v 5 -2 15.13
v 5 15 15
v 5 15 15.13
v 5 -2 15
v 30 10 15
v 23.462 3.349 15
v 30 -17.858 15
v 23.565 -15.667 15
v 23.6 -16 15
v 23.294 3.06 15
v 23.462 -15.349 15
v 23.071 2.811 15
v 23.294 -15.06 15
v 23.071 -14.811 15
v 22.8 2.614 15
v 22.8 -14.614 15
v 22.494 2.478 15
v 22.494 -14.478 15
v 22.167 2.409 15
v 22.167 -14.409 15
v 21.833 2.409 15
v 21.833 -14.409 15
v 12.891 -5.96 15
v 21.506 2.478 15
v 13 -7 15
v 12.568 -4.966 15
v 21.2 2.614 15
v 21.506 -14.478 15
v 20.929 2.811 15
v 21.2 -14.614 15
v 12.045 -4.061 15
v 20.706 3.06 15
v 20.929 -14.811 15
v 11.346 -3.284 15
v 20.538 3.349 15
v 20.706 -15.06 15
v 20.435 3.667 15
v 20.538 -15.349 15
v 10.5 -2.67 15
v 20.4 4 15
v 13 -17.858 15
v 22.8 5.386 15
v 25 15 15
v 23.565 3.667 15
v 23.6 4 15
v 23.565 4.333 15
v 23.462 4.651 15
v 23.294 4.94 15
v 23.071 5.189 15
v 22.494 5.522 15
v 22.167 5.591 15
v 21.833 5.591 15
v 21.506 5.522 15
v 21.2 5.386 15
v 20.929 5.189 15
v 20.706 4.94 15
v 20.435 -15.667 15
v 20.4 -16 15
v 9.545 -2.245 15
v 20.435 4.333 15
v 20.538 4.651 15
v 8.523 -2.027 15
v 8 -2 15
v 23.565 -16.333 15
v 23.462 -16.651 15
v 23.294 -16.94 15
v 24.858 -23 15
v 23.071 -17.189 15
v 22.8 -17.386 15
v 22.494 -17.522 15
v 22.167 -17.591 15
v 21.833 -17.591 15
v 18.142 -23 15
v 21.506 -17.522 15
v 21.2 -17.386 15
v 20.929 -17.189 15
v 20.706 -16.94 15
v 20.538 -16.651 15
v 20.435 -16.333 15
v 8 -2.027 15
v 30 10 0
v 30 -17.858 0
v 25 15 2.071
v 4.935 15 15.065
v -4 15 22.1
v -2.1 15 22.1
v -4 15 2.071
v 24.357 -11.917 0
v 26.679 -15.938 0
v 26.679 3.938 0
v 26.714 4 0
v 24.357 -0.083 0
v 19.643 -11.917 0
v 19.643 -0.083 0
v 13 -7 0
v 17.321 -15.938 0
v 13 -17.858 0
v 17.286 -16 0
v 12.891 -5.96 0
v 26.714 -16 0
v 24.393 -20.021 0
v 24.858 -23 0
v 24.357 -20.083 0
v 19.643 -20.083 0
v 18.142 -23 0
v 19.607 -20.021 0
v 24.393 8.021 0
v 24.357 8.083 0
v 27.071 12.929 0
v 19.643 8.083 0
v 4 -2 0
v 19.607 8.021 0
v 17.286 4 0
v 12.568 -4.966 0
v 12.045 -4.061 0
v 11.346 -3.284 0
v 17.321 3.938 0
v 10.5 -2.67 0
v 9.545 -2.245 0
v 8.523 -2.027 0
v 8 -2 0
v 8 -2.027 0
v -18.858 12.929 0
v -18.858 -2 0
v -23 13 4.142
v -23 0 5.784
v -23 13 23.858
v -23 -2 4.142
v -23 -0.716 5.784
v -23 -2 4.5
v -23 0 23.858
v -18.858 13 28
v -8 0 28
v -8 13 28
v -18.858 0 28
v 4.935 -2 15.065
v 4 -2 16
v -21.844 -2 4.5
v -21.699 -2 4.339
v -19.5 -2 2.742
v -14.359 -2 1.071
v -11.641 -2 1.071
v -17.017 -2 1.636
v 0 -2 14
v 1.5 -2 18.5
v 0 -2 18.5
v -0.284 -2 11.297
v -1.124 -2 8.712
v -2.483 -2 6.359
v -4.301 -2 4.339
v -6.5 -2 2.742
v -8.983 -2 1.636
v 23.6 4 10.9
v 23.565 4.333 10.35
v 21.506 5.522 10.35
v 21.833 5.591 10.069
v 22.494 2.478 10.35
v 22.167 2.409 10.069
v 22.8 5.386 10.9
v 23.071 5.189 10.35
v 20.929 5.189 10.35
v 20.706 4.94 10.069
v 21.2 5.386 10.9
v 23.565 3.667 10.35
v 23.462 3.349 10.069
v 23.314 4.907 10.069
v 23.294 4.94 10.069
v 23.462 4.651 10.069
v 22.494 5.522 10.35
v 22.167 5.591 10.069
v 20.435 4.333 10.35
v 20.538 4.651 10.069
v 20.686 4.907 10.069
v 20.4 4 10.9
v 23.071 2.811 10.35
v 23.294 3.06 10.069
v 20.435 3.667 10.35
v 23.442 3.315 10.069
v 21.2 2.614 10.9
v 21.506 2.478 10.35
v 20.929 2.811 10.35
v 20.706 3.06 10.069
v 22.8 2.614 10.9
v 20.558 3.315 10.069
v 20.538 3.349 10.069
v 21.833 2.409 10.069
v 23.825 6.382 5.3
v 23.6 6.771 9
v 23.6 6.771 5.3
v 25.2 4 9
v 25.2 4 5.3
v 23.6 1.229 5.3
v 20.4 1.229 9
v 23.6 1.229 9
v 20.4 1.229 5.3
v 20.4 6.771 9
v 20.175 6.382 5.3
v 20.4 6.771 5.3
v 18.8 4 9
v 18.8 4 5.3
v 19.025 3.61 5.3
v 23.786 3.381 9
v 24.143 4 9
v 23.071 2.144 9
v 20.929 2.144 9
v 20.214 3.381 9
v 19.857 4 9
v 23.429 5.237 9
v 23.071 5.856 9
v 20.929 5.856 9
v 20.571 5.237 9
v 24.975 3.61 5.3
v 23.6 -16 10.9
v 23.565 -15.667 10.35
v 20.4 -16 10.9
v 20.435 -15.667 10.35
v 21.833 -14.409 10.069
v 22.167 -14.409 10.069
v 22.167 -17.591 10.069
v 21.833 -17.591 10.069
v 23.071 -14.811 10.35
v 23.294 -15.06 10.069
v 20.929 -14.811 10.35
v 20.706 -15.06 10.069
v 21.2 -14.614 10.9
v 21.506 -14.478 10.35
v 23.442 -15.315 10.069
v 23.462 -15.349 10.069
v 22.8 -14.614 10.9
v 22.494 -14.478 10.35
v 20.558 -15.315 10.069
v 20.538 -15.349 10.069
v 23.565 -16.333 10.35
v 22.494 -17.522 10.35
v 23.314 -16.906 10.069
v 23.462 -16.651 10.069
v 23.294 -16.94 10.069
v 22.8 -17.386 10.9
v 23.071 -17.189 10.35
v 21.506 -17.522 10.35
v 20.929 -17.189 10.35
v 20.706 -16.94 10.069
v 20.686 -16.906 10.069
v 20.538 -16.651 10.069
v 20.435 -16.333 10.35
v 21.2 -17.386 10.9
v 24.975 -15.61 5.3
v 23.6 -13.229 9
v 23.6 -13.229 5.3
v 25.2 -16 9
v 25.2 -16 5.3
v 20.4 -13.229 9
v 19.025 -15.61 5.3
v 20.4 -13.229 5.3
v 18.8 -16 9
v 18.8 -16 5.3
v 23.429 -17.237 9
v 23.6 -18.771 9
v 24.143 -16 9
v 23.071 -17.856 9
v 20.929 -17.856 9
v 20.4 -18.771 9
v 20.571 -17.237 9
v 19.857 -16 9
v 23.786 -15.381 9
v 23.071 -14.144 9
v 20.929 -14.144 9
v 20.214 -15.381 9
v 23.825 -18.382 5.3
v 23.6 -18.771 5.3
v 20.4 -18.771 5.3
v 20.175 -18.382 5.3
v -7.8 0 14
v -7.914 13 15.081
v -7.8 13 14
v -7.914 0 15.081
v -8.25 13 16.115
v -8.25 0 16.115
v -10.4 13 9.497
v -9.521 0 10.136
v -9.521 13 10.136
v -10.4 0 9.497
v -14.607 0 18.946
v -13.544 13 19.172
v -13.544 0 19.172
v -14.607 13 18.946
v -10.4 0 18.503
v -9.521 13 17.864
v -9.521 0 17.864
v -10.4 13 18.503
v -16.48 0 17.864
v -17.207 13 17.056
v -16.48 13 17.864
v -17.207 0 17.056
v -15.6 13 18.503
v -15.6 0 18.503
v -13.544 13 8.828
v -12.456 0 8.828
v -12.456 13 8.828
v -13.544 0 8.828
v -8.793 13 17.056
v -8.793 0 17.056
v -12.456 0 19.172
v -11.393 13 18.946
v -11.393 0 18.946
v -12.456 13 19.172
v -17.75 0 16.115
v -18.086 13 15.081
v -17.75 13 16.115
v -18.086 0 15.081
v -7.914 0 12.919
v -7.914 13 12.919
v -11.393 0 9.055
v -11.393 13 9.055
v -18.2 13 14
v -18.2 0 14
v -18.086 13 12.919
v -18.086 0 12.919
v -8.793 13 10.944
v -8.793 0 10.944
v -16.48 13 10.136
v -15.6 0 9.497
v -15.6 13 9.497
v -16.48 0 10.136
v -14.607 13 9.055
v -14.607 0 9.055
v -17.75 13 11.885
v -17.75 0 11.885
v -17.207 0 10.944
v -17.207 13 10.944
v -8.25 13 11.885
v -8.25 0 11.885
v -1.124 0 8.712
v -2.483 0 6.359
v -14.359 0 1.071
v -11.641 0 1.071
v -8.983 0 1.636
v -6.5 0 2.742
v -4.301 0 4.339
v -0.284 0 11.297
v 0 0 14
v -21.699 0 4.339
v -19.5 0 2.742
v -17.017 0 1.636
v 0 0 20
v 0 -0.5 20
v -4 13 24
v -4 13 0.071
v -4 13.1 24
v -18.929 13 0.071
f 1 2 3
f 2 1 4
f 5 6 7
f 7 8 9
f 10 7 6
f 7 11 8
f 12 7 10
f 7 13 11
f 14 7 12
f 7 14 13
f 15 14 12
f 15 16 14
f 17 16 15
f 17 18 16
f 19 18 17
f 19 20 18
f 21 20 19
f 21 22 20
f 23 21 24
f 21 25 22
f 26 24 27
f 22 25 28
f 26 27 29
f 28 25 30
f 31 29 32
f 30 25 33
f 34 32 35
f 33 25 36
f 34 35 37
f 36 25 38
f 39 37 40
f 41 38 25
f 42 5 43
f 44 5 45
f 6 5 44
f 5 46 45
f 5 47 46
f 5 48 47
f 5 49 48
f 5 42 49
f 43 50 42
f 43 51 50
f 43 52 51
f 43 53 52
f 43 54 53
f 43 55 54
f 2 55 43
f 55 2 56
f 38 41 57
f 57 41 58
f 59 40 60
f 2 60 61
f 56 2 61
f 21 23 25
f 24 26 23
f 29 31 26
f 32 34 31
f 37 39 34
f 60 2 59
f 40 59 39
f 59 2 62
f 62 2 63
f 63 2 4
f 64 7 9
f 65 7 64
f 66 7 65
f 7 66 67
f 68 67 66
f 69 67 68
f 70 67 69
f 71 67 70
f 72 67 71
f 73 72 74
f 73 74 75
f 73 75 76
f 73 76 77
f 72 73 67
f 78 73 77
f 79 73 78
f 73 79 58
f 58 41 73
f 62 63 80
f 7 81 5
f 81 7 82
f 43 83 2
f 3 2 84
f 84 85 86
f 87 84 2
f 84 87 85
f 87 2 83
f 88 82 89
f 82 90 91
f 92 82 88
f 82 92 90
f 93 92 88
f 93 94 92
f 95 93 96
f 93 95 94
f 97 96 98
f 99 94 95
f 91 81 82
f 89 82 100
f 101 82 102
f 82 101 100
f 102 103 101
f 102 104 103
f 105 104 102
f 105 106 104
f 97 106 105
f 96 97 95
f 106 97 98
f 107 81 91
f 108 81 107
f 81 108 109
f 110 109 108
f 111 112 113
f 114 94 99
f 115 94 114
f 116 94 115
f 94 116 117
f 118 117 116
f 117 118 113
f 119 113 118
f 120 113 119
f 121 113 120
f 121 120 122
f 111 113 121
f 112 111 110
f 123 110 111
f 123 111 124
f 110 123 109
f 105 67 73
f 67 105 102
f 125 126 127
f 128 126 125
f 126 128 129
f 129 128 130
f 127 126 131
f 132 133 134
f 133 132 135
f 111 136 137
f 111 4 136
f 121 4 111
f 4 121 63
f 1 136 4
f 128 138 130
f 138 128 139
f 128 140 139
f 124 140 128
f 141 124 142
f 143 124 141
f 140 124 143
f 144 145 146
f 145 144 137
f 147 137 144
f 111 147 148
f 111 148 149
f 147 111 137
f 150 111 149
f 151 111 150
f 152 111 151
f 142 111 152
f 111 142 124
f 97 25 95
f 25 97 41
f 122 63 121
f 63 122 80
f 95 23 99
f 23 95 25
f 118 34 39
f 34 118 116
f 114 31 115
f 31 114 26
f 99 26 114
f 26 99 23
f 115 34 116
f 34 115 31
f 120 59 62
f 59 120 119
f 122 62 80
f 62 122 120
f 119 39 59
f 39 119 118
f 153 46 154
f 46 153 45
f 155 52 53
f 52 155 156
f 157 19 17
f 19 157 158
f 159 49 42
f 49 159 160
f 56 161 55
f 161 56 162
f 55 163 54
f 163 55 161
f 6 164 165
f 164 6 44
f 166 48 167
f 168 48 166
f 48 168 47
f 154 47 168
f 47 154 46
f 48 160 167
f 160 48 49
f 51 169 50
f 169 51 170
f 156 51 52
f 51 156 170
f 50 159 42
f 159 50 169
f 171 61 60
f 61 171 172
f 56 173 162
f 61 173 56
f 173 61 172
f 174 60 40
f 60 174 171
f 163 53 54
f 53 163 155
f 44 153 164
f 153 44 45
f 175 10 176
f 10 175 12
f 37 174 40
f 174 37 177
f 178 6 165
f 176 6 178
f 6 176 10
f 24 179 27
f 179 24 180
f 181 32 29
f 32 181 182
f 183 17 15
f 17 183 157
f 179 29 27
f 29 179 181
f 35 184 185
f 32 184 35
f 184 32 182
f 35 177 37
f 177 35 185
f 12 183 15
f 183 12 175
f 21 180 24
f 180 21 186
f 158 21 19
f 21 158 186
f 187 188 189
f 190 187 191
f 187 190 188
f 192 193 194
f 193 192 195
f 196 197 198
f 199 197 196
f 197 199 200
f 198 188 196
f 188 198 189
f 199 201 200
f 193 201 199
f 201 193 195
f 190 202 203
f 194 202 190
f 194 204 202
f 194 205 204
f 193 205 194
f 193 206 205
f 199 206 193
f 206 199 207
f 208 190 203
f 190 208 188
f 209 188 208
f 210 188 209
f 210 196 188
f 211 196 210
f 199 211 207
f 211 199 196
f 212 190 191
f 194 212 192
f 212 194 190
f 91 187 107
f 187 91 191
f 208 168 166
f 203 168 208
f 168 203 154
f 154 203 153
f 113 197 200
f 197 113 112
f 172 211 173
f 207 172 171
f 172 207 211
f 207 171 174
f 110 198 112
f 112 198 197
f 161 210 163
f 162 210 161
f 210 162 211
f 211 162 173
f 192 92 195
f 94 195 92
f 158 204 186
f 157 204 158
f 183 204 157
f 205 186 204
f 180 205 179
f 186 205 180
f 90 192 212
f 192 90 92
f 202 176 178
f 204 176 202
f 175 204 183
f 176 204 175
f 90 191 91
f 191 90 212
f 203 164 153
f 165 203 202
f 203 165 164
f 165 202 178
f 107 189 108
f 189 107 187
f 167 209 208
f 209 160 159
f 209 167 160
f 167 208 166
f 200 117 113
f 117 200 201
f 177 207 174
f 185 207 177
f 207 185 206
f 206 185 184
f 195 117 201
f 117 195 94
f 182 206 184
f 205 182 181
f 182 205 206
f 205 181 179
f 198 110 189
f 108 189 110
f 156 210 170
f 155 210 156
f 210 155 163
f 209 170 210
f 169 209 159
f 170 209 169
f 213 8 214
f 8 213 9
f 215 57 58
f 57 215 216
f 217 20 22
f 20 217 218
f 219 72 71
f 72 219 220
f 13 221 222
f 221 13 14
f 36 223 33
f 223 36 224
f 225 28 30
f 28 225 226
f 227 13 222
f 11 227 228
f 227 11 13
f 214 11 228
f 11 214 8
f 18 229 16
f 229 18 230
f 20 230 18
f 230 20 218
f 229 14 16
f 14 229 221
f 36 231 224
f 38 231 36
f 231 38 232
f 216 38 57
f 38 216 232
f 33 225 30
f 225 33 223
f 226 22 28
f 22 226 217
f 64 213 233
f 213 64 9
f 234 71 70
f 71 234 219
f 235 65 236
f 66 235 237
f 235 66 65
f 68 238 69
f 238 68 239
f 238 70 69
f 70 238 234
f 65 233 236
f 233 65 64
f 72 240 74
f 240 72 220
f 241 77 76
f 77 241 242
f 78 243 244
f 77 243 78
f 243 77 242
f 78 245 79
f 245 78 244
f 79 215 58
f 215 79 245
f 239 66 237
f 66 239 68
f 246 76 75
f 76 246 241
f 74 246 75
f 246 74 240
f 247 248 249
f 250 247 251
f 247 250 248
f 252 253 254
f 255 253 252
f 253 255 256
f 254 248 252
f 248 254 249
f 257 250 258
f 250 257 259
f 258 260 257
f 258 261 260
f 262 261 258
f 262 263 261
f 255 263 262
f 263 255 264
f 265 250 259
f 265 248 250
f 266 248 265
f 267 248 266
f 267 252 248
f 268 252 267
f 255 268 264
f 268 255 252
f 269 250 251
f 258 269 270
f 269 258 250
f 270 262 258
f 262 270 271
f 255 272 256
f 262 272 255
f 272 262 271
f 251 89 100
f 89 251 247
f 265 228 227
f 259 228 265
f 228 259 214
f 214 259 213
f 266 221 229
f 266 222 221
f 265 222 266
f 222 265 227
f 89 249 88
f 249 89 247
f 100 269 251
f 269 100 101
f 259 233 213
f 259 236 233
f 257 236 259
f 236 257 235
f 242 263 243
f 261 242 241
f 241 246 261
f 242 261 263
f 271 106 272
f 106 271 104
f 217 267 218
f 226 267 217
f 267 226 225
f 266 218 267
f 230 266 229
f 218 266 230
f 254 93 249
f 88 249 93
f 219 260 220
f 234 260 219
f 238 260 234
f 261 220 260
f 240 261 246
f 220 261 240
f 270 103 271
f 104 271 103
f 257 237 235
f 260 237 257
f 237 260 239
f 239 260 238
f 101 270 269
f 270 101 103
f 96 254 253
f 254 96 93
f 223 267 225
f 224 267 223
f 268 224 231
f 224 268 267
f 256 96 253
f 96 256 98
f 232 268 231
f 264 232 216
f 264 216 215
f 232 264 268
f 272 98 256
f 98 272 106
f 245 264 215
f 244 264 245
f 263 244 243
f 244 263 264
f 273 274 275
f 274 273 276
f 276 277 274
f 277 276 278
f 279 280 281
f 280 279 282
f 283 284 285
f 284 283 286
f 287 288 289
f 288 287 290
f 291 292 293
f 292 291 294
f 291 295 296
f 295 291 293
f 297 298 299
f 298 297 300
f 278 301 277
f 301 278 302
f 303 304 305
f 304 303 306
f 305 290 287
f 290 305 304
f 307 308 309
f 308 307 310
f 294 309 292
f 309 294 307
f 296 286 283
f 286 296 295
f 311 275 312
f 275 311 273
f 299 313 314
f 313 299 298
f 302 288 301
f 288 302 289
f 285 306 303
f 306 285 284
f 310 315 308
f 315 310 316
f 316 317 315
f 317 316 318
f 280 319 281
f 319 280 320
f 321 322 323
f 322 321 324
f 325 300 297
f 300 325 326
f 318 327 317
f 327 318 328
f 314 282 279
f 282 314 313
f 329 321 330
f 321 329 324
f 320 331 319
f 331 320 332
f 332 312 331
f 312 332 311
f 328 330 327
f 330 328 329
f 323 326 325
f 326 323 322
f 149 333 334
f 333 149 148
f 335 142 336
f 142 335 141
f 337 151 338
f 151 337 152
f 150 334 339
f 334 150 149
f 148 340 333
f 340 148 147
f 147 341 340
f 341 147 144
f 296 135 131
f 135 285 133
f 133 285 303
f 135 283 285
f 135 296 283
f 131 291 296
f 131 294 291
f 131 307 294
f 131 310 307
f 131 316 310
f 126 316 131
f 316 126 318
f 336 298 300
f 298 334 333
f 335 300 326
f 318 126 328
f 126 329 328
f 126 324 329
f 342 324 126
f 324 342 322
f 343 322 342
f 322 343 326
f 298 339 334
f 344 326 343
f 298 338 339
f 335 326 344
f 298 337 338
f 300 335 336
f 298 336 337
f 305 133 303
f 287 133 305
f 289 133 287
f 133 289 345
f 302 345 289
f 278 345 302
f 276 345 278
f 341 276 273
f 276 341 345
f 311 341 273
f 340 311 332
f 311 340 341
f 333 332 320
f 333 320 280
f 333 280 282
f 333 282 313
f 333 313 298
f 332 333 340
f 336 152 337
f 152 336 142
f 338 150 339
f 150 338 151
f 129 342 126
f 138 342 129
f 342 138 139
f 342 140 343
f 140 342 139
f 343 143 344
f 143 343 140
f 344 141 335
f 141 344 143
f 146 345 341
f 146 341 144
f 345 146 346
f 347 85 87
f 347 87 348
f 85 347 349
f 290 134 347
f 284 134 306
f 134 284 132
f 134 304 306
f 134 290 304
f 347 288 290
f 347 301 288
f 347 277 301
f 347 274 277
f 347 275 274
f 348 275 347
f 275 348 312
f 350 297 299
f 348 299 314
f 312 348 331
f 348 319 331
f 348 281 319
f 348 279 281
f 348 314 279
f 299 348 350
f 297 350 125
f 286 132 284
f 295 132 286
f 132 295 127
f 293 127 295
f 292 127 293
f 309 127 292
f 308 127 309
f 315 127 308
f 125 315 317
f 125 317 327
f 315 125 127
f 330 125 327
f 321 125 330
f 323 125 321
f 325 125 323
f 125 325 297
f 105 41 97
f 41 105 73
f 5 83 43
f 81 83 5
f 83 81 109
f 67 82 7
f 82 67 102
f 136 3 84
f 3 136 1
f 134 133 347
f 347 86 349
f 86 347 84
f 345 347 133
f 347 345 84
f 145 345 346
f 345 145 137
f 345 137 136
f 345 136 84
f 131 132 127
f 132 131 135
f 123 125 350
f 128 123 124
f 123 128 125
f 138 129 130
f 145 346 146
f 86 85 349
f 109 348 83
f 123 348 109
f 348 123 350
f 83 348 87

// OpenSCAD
// PRUSA iteration3
// PSU-Y reinforcement part 
// GNU GPL v3
// Josef Průša <iam@josefprusa.cz> and contributors
// http://www.reprap.org/wiki/Prusa_Mendel
// http://prusamendel.org

module base()
{
union(){
    difference(){
        union(){
        translate([ 5, -23, 0 ]) cube([ 25, 38, 15 ]);  // horizontal plate
        translate([ -23, -2, 0 ]) cube([ 28, 17, 28 ]);  // Y_Corner block    
        }
        translate( [ 4 , -25 , -1 ] ) cube( [ 9 , 23 , 18 ] );  //  holder side cut
    }
    difference(){    
        translate([ 8, -7, 0 ]) cube([ 5, 5, 15 ]);  // fillet block
        translate([ 8, -7, -1 ]) cylinder( h = 28, r = 5, $fn=30);  // fillet cut
        }
    }
}


module cutout()
    {

    translate([ 22, 4 , -2 ]) cylinder( h = 20, r = 1.6, $fn=30);  // M3 hole A
    translate([ 22, 4 , -1 ]) cylinder( h = 10, r = 3.2, $fn=6);  // M3 nut body A        
    translate([ 22, 4 , -1 ]) cylinder( h = 14, r1 = 3.2, r1 = 5, $fn=6);  // M3 nut hole fillet A
        
    translate([ 22, -16 , -2 ]) cylinder( h = 20, r = 1.6, $fn=30);  // M3 hole B
    translate([ 22, -16 , -1 ]) cylinder( h = 10, r = 3.2, $fn=6);  // M3 nut body B
    translate([ 22, -16 , -1 ]) cylinder( h = 14, r1 = 3.2, r1 = 5, $fn=6);  // M3 nut hole B fillet

    translate([ -13, 14 , 14 ]) rotate([90,0,0]) cylinder( h = 25, r = 5.2, $fn=30);  // threaded rod
    
    translate([ -13, 0 , 14 ]) rotate([90,0,0]) cylinder( h = 4, r = 13, $fn=30);  // washer
    translate([ -29, -7 , 14 ])  cube([ 29, 7, 18 ]);  // washer upper cut
    
    translate([ -24, 13 , -1 ]) cube([ 20, 15, 30 ]);  // Y_Corner cutaway

    //vertical corners 45 degree cut
    translate( [ 12, -31 , -2 ] ) rotate( [0,0,45] ) cube([ 10 , 10 , 21 ]);  
    translate([ 31,  9, -2 ])  rotate( [0,0,45] ) cube([ 10, 10, 21 ]);  
    translate([ 31, -31, -2 ]) rotate( [0,0,45] ) cube([ 10, 10, 21 ]);  

    // horizontal corners 45 degree cut
    translate([ -8.5, -8, 28.5 ]) rotate( [0,45,0] ) cube([ 19, 40, 20 ]);  
    translate([ -31, -6, 30 ]) rotate( [0,45,0])  cube([ 10, 35, 10 ]);  
    translate([ -31, -6, -2 ]) rotate( [0,45,0] ) cube([ 10, 35, 10 ]);  
    translate([ -26, -4,  2.5 ]) rotate( [45,0,0] ) cube([ 5, 5, 5 ]);  
    translate([ -1, -4, 16.5 ]) rotate( [45,0,0] ) cube([ 5, 5, 5 ]);  
    translate([ -5, 16.6, 20.5 ]) rotate( [45,0,0] ) cube([ 5, 5, 5 ]);  
    translate([ -30, 15, -5 ]) rotate( [45,0,0] ) cube([ 70, 5, 5 ]);  
}

module final_part(){
difference()
{
    base();
    cutout();
    }
}

final_part();
